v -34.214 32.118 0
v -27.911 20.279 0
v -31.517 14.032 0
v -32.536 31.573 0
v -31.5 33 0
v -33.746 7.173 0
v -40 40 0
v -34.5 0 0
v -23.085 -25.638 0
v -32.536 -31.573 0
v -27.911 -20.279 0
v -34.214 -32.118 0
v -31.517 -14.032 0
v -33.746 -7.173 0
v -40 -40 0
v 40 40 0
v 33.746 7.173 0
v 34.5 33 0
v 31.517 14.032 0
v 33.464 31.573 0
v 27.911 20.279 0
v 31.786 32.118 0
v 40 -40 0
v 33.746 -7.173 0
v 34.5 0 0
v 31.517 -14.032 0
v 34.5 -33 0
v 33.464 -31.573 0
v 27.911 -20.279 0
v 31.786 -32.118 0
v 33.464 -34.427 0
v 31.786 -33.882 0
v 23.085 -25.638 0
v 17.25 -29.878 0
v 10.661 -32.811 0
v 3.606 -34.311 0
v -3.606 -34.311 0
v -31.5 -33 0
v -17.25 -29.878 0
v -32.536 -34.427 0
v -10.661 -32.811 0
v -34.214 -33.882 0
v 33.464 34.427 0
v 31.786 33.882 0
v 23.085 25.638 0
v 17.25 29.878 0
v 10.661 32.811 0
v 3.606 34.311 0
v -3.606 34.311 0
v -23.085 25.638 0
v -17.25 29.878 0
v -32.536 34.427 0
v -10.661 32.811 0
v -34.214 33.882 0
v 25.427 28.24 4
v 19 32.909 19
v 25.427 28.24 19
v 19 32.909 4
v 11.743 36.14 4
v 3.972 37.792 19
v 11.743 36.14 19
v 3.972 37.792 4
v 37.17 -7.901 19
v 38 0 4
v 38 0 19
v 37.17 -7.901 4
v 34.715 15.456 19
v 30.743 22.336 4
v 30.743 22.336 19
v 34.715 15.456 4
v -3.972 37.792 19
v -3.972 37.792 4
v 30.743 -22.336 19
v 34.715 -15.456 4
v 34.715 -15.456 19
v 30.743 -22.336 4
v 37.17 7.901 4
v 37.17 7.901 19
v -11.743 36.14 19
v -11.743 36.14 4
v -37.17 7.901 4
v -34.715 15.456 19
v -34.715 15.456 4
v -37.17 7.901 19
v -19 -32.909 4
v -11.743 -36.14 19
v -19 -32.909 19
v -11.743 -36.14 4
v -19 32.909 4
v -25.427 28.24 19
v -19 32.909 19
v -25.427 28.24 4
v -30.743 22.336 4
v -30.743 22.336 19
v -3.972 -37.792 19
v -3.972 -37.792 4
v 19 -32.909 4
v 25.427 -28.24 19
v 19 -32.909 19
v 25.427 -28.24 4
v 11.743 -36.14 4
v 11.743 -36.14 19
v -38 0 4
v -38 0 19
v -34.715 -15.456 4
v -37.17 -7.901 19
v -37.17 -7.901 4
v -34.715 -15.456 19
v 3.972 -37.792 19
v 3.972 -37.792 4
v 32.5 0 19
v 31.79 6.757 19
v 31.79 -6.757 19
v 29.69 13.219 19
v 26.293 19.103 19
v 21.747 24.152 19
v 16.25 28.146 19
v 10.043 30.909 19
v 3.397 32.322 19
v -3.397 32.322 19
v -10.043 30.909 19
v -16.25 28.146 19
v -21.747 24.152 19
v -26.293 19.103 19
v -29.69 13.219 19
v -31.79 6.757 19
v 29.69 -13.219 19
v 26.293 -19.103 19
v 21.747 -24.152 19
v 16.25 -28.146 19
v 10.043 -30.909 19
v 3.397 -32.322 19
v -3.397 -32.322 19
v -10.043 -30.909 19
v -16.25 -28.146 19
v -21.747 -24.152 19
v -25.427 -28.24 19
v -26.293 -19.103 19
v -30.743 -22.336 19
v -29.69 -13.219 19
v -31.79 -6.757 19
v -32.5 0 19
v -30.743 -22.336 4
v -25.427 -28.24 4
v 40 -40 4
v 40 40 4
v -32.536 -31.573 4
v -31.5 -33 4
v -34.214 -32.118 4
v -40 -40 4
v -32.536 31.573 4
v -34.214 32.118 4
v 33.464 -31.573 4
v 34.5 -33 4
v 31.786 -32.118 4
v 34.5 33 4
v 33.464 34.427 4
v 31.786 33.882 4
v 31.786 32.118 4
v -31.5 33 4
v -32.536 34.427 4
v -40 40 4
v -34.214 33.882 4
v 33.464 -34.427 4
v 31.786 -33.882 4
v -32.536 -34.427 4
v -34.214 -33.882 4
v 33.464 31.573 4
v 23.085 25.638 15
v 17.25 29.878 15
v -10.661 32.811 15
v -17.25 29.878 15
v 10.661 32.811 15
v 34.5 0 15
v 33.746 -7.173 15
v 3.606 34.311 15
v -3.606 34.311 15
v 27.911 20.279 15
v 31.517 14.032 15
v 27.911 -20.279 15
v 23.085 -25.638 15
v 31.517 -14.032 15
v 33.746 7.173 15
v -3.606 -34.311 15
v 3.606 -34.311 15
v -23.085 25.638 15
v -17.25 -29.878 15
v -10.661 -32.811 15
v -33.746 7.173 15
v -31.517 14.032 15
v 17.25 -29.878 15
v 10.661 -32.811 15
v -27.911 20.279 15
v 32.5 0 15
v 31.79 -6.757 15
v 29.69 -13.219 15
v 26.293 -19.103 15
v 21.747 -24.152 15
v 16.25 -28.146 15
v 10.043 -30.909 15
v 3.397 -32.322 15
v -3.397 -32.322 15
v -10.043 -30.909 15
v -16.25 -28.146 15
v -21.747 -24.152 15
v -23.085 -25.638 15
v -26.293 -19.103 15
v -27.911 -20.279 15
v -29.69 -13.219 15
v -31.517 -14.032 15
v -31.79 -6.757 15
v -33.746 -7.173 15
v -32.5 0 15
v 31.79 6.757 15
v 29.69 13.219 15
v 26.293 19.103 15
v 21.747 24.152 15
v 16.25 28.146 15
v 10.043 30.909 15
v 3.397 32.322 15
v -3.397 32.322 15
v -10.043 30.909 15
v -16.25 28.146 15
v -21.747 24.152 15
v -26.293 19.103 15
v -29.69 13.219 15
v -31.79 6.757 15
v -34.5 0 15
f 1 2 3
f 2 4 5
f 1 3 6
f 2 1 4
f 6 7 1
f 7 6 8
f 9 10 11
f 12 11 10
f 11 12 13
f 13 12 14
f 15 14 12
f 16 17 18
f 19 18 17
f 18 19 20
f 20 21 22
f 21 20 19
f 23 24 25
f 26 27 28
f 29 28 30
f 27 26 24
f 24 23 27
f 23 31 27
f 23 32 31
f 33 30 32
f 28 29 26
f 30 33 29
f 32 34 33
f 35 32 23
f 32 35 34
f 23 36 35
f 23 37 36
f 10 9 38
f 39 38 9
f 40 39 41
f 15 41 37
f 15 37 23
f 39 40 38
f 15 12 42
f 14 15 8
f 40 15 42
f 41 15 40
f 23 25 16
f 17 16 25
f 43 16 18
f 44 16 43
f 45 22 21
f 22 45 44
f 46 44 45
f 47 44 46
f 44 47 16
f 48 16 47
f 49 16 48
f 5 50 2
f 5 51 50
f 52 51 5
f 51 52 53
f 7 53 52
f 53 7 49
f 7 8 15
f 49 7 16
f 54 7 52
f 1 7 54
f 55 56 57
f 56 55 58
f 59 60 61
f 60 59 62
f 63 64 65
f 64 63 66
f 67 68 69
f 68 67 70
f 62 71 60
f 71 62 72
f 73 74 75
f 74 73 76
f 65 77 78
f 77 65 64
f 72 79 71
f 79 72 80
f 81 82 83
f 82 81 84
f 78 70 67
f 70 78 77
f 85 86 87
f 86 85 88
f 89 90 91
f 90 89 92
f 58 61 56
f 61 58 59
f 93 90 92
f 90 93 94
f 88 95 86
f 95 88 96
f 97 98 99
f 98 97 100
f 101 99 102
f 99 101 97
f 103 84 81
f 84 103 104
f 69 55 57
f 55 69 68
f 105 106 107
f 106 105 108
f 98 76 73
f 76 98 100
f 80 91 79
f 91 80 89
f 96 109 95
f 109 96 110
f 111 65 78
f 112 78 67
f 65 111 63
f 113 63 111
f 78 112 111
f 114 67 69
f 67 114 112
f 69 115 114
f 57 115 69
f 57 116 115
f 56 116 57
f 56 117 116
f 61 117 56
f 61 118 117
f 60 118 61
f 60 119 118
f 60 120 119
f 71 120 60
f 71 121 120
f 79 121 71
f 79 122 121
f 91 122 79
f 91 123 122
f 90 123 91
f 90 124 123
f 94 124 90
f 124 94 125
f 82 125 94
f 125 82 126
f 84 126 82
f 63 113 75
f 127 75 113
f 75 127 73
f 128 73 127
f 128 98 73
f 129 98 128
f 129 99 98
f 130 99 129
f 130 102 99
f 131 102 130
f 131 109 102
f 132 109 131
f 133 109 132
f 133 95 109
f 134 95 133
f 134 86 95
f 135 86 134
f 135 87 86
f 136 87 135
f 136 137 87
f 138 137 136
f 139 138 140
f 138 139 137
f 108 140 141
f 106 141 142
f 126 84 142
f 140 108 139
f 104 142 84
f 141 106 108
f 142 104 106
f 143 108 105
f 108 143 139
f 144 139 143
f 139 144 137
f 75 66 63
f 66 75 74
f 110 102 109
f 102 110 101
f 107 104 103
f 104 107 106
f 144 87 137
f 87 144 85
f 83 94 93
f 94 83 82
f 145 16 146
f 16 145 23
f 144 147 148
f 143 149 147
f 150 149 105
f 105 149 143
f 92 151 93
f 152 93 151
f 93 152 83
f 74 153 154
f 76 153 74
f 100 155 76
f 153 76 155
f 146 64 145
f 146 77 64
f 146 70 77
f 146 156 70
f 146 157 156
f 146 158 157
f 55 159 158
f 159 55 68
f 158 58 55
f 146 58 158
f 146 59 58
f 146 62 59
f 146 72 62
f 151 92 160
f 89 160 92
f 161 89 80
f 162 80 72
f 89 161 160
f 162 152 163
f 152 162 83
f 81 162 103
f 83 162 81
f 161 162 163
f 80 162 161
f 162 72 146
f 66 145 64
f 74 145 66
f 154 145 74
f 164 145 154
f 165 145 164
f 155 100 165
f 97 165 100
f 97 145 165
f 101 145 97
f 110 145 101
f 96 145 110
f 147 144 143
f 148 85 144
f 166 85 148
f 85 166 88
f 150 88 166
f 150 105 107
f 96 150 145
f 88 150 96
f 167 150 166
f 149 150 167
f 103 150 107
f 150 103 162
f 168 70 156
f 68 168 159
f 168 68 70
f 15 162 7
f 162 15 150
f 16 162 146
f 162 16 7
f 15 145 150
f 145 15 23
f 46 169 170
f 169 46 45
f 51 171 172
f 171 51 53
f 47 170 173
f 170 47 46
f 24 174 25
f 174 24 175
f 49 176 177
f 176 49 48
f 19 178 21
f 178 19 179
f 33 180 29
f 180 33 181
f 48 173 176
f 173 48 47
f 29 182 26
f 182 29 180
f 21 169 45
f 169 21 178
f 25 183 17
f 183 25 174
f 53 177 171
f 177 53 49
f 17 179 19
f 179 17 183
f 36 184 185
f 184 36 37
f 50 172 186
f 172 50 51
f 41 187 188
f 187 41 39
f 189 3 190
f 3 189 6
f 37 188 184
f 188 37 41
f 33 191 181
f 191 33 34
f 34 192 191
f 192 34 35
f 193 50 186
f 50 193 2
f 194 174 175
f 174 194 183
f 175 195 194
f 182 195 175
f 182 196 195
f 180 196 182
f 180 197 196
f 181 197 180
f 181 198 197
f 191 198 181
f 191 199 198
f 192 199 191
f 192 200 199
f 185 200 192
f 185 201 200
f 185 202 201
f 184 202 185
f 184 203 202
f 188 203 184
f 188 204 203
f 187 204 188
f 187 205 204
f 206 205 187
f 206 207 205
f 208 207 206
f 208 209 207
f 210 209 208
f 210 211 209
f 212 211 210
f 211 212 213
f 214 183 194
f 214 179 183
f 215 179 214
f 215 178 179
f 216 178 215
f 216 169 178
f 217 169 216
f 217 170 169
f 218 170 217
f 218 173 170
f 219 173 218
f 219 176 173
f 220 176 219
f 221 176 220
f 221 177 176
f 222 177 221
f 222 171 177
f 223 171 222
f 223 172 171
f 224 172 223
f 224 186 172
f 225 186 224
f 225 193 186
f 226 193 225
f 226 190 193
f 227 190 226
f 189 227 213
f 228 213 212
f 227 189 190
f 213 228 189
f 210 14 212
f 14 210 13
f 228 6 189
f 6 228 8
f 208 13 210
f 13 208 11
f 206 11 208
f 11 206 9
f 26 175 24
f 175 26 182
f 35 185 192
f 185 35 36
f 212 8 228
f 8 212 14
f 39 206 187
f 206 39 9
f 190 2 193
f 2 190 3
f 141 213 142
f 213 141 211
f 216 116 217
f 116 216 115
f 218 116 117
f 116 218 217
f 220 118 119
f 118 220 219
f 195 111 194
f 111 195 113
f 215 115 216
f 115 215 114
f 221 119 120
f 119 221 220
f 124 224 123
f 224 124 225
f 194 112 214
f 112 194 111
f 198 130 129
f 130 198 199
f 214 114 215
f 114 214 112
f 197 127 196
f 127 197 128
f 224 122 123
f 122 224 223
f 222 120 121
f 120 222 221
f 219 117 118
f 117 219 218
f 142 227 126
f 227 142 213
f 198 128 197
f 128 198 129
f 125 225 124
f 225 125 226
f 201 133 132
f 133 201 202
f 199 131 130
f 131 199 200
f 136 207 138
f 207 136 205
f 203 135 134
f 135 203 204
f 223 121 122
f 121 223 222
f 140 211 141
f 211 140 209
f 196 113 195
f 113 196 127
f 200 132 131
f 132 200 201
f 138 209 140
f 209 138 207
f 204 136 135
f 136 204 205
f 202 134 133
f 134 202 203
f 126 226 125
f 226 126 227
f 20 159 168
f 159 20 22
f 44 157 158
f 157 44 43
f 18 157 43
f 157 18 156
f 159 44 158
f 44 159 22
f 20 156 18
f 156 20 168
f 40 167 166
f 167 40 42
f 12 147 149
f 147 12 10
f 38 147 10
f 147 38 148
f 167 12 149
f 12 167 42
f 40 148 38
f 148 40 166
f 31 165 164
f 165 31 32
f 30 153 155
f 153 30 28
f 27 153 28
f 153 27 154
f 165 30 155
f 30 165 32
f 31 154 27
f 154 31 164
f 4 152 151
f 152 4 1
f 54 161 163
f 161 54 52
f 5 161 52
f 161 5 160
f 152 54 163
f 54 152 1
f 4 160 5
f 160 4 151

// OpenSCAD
difference(){
union(){
cylinder(d=76,h=19);//obal loziska stena 4mm
translate([0,0,2]) cube([80,80,4],center=true); //podstavec
}
cylinder(d=69,h=15); //lozisko
cylinder(d=65,h=30); //vnitrek loziska

translate([33,33,0]) cylinder(d=3,h=20);
translate([-33,-33,0]) cylinder(d=3,h=20);
translate([33,-33,0]) cylinder(d=3,h=20);
translate([-33,33,0]) cylinder(d=3,h=20);
}
